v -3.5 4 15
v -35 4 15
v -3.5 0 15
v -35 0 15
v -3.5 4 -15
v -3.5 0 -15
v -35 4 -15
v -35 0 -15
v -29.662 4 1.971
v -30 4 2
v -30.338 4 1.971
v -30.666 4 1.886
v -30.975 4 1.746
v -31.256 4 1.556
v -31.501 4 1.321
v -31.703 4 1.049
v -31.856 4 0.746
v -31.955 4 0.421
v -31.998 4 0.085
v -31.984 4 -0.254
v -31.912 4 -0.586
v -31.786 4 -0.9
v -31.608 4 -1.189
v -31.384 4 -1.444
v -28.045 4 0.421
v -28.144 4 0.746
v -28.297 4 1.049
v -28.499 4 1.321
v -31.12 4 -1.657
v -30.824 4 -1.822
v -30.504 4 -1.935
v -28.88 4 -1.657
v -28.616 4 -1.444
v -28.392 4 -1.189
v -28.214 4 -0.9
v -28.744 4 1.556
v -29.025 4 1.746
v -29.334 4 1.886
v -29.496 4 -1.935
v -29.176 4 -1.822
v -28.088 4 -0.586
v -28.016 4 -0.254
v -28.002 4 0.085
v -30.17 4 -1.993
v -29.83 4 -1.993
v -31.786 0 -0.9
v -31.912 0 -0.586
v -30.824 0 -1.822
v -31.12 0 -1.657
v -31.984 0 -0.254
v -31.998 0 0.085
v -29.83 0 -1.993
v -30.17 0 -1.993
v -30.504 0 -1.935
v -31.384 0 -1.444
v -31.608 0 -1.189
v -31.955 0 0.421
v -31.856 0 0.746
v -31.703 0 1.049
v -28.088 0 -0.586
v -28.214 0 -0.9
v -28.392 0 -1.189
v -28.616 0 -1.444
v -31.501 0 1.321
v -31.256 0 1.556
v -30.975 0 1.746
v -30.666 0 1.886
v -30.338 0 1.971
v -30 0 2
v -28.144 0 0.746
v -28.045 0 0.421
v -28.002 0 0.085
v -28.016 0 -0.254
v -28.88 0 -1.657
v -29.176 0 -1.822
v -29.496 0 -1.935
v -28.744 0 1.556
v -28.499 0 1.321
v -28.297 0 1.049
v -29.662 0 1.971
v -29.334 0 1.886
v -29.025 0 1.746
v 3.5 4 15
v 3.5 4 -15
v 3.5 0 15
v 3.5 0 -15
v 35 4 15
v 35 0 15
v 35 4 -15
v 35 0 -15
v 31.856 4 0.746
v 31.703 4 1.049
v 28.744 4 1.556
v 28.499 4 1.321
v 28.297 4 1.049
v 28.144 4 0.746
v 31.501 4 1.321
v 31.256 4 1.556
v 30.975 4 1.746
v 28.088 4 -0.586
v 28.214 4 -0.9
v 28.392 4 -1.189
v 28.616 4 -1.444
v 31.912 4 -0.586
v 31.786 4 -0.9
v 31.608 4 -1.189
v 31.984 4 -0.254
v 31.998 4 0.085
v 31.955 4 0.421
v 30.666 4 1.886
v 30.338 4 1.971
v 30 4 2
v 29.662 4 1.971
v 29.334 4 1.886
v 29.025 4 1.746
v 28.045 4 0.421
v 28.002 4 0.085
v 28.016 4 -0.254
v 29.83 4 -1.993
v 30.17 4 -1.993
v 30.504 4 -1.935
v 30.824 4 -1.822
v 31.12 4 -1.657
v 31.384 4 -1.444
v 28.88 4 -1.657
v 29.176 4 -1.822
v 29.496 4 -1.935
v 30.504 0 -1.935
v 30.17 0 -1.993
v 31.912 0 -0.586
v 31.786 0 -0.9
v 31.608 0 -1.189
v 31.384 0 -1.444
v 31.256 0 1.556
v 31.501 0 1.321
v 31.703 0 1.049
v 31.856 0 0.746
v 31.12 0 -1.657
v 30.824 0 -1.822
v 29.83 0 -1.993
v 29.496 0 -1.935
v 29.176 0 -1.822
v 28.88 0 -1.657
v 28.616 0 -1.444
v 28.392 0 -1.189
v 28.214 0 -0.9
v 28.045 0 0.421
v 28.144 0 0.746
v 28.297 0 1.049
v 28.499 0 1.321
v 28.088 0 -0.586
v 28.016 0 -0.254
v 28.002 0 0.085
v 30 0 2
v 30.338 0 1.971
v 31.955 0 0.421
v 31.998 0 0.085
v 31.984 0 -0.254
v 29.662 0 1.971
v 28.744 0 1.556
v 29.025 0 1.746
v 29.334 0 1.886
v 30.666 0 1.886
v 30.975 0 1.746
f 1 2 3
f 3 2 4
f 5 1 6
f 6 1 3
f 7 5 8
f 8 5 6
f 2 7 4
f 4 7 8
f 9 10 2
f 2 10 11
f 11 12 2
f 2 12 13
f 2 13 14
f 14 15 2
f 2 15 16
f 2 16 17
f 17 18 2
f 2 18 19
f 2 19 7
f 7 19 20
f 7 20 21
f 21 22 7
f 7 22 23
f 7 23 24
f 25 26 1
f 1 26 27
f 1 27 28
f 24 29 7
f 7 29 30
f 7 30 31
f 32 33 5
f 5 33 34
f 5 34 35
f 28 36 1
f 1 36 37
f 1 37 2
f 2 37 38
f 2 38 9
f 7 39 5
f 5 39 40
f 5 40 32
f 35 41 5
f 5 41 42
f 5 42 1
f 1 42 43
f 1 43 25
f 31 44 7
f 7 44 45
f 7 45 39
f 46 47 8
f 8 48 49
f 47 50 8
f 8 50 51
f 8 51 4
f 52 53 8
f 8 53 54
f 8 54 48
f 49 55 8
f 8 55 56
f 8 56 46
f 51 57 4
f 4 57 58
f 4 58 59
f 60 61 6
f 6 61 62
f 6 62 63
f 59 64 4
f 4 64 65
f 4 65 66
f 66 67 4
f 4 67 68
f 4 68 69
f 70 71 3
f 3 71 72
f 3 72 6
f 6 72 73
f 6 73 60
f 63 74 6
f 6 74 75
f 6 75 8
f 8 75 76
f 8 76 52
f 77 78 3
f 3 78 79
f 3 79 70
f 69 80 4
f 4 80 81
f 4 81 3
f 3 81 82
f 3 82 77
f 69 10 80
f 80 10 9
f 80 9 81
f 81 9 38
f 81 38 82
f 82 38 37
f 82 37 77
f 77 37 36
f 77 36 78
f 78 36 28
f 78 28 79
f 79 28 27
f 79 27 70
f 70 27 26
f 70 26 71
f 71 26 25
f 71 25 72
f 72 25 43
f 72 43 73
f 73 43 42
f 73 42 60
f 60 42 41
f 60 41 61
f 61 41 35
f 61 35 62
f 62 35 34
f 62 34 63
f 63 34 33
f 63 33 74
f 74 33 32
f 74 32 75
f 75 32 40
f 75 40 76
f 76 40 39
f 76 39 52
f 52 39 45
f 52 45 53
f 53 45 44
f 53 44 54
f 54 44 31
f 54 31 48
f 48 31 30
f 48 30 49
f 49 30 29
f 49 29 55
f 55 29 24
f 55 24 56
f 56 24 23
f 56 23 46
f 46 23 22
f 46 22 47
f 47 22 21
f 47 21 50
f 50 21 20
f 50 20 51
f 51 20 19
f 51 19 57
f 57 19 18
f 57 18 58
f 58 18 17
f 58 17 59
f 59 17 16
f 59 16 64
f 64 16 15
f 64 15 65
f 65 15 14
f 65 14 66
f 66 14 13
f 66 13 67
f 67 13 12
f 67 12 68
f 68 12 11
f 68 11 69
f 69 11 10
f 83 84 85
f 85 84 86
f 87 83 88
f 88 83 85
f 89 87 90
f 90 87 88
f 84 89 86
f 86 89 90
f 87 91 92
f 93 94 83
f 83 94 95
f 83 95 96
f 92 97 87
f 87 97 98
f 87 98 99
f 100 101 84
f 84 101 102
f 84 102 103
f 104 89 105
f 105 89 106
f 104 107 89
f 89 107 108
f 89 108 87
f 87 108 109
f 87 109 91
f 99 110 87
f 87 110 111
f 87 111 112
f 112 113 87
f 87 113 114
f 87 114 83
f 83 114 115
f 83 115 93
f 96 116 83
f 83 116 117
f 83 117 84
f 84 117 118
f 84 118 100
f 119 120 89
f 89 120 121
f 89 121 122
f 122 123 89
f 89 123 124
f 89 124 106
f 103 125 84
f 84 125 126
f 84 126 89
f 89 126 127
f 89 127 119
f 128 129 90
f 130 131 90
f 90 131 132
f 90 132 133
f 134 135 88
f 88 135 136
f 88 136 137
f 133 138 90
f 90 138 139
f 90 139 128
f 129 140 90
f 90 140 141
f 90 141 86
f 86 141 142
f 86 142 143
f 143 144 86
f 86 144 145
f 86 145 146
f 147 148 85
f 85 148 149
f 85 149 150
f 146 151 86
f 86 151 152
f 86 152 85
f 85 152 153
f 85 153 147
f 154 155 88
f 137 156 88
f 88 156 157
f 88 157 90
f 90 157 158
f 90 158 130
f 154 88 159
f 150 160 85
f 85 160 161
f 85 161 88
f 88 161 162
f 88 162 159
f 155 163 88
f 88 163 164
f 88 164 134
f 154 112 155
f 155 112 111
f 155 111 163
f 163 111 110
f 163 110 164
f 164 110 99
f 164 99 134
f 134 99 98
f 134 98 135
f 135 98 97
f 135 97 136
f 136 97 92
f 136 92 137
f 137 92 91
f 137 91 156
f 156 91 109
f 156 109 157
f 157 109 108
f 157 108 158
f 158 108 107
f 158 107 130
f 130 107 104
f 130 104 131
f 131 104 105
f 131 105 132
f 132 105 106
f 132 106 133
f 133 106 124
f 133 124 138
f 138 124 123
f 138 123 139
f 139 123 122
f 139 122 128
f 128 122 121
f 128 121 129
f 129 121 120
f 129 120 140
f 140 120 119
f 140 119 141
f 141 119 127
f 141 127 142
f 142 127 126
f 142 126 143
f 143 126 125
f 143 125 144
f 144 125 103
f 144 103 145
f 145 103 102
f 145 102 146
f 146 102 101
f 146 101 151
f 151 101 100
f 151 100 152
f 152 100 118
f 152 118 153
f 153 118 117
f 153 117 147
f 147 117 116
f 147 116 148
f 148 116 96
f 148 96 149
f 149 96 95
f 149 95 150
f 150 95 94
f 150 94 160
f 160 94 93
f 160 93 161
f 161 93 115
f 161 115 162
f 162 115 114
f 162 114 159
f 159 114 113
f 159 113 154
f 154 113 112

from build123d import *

# Parameters (mm, degrees)
SKETCH1_W             = 31.5
SKETCH1_H             = 30
BOSS_EXTRUDE1_DEPTH   = 4
BOSS_EXTRUDE1_2_DEPTH = 4
SKETCH2_R             = 2
CUT_EXTRUDE1_DEPTH    = 4


with BuildPart() as part:
    # Sketch1 → Boss-Extrude1 (new body)
    with BuildSketch(Plane(origin=(0, 0, 0), x_dir=(1, 0, 0), z_dir=(0, 1, 0))):
        with Locations((-19.25, 0)):
            Rectangle(SKETCH1_W, SKETCH1_H)
    extrude(amount=BOSS_EXTRUDE1_DEPTH)


with BuildPart() as body_2:
    # Sketch1 → Boss-Extrude1 2 (new body)
    with BuildSketch(Plane(origin=(0, 0, 0), x_dir=(1, 0, 0), z_dir=(0, 1, 0))):
        with Locations((19.25, 0)):
            Rectangle(SKETCH1_W, SKETCH1_H)
    extrude(amount=BOSS_EXTRUDE1_2_DEPTH)


with BuildPart() as cut_extrude1_tool:
    # Sketch2 → Cut-Extrude1 (new body)
    with BuildSketch(Plane(origin=(0, 4, 0), x_dir=(1, 0, 0), z_dir=(0, 1, 0))):
        with Locations((-30, 0)):
            Circle(SKETCH2_R)
        with Locations((30, 0)):
            Circle(SKETCH2_R)
    extrude(amount=-CUT_EXTRUDE1_DEPTH)


with BuildPart() as part_1:
    add(part.part)

    # Cut-Extrude1: cut by cut_extrude1_tool
    add(cut_extrude1_tool.part, mode=Mode.SUBTRACT)


with BuildPart() as body_2_1:
    add(body_2.part)

    # Cut-Extrude1: cut by cut_extrude1_tool
    add(cut_extrude1_tool.part, mode=Mode.SUBTRACT)


solid = Compound([part_1.part, body_2_1.part])
